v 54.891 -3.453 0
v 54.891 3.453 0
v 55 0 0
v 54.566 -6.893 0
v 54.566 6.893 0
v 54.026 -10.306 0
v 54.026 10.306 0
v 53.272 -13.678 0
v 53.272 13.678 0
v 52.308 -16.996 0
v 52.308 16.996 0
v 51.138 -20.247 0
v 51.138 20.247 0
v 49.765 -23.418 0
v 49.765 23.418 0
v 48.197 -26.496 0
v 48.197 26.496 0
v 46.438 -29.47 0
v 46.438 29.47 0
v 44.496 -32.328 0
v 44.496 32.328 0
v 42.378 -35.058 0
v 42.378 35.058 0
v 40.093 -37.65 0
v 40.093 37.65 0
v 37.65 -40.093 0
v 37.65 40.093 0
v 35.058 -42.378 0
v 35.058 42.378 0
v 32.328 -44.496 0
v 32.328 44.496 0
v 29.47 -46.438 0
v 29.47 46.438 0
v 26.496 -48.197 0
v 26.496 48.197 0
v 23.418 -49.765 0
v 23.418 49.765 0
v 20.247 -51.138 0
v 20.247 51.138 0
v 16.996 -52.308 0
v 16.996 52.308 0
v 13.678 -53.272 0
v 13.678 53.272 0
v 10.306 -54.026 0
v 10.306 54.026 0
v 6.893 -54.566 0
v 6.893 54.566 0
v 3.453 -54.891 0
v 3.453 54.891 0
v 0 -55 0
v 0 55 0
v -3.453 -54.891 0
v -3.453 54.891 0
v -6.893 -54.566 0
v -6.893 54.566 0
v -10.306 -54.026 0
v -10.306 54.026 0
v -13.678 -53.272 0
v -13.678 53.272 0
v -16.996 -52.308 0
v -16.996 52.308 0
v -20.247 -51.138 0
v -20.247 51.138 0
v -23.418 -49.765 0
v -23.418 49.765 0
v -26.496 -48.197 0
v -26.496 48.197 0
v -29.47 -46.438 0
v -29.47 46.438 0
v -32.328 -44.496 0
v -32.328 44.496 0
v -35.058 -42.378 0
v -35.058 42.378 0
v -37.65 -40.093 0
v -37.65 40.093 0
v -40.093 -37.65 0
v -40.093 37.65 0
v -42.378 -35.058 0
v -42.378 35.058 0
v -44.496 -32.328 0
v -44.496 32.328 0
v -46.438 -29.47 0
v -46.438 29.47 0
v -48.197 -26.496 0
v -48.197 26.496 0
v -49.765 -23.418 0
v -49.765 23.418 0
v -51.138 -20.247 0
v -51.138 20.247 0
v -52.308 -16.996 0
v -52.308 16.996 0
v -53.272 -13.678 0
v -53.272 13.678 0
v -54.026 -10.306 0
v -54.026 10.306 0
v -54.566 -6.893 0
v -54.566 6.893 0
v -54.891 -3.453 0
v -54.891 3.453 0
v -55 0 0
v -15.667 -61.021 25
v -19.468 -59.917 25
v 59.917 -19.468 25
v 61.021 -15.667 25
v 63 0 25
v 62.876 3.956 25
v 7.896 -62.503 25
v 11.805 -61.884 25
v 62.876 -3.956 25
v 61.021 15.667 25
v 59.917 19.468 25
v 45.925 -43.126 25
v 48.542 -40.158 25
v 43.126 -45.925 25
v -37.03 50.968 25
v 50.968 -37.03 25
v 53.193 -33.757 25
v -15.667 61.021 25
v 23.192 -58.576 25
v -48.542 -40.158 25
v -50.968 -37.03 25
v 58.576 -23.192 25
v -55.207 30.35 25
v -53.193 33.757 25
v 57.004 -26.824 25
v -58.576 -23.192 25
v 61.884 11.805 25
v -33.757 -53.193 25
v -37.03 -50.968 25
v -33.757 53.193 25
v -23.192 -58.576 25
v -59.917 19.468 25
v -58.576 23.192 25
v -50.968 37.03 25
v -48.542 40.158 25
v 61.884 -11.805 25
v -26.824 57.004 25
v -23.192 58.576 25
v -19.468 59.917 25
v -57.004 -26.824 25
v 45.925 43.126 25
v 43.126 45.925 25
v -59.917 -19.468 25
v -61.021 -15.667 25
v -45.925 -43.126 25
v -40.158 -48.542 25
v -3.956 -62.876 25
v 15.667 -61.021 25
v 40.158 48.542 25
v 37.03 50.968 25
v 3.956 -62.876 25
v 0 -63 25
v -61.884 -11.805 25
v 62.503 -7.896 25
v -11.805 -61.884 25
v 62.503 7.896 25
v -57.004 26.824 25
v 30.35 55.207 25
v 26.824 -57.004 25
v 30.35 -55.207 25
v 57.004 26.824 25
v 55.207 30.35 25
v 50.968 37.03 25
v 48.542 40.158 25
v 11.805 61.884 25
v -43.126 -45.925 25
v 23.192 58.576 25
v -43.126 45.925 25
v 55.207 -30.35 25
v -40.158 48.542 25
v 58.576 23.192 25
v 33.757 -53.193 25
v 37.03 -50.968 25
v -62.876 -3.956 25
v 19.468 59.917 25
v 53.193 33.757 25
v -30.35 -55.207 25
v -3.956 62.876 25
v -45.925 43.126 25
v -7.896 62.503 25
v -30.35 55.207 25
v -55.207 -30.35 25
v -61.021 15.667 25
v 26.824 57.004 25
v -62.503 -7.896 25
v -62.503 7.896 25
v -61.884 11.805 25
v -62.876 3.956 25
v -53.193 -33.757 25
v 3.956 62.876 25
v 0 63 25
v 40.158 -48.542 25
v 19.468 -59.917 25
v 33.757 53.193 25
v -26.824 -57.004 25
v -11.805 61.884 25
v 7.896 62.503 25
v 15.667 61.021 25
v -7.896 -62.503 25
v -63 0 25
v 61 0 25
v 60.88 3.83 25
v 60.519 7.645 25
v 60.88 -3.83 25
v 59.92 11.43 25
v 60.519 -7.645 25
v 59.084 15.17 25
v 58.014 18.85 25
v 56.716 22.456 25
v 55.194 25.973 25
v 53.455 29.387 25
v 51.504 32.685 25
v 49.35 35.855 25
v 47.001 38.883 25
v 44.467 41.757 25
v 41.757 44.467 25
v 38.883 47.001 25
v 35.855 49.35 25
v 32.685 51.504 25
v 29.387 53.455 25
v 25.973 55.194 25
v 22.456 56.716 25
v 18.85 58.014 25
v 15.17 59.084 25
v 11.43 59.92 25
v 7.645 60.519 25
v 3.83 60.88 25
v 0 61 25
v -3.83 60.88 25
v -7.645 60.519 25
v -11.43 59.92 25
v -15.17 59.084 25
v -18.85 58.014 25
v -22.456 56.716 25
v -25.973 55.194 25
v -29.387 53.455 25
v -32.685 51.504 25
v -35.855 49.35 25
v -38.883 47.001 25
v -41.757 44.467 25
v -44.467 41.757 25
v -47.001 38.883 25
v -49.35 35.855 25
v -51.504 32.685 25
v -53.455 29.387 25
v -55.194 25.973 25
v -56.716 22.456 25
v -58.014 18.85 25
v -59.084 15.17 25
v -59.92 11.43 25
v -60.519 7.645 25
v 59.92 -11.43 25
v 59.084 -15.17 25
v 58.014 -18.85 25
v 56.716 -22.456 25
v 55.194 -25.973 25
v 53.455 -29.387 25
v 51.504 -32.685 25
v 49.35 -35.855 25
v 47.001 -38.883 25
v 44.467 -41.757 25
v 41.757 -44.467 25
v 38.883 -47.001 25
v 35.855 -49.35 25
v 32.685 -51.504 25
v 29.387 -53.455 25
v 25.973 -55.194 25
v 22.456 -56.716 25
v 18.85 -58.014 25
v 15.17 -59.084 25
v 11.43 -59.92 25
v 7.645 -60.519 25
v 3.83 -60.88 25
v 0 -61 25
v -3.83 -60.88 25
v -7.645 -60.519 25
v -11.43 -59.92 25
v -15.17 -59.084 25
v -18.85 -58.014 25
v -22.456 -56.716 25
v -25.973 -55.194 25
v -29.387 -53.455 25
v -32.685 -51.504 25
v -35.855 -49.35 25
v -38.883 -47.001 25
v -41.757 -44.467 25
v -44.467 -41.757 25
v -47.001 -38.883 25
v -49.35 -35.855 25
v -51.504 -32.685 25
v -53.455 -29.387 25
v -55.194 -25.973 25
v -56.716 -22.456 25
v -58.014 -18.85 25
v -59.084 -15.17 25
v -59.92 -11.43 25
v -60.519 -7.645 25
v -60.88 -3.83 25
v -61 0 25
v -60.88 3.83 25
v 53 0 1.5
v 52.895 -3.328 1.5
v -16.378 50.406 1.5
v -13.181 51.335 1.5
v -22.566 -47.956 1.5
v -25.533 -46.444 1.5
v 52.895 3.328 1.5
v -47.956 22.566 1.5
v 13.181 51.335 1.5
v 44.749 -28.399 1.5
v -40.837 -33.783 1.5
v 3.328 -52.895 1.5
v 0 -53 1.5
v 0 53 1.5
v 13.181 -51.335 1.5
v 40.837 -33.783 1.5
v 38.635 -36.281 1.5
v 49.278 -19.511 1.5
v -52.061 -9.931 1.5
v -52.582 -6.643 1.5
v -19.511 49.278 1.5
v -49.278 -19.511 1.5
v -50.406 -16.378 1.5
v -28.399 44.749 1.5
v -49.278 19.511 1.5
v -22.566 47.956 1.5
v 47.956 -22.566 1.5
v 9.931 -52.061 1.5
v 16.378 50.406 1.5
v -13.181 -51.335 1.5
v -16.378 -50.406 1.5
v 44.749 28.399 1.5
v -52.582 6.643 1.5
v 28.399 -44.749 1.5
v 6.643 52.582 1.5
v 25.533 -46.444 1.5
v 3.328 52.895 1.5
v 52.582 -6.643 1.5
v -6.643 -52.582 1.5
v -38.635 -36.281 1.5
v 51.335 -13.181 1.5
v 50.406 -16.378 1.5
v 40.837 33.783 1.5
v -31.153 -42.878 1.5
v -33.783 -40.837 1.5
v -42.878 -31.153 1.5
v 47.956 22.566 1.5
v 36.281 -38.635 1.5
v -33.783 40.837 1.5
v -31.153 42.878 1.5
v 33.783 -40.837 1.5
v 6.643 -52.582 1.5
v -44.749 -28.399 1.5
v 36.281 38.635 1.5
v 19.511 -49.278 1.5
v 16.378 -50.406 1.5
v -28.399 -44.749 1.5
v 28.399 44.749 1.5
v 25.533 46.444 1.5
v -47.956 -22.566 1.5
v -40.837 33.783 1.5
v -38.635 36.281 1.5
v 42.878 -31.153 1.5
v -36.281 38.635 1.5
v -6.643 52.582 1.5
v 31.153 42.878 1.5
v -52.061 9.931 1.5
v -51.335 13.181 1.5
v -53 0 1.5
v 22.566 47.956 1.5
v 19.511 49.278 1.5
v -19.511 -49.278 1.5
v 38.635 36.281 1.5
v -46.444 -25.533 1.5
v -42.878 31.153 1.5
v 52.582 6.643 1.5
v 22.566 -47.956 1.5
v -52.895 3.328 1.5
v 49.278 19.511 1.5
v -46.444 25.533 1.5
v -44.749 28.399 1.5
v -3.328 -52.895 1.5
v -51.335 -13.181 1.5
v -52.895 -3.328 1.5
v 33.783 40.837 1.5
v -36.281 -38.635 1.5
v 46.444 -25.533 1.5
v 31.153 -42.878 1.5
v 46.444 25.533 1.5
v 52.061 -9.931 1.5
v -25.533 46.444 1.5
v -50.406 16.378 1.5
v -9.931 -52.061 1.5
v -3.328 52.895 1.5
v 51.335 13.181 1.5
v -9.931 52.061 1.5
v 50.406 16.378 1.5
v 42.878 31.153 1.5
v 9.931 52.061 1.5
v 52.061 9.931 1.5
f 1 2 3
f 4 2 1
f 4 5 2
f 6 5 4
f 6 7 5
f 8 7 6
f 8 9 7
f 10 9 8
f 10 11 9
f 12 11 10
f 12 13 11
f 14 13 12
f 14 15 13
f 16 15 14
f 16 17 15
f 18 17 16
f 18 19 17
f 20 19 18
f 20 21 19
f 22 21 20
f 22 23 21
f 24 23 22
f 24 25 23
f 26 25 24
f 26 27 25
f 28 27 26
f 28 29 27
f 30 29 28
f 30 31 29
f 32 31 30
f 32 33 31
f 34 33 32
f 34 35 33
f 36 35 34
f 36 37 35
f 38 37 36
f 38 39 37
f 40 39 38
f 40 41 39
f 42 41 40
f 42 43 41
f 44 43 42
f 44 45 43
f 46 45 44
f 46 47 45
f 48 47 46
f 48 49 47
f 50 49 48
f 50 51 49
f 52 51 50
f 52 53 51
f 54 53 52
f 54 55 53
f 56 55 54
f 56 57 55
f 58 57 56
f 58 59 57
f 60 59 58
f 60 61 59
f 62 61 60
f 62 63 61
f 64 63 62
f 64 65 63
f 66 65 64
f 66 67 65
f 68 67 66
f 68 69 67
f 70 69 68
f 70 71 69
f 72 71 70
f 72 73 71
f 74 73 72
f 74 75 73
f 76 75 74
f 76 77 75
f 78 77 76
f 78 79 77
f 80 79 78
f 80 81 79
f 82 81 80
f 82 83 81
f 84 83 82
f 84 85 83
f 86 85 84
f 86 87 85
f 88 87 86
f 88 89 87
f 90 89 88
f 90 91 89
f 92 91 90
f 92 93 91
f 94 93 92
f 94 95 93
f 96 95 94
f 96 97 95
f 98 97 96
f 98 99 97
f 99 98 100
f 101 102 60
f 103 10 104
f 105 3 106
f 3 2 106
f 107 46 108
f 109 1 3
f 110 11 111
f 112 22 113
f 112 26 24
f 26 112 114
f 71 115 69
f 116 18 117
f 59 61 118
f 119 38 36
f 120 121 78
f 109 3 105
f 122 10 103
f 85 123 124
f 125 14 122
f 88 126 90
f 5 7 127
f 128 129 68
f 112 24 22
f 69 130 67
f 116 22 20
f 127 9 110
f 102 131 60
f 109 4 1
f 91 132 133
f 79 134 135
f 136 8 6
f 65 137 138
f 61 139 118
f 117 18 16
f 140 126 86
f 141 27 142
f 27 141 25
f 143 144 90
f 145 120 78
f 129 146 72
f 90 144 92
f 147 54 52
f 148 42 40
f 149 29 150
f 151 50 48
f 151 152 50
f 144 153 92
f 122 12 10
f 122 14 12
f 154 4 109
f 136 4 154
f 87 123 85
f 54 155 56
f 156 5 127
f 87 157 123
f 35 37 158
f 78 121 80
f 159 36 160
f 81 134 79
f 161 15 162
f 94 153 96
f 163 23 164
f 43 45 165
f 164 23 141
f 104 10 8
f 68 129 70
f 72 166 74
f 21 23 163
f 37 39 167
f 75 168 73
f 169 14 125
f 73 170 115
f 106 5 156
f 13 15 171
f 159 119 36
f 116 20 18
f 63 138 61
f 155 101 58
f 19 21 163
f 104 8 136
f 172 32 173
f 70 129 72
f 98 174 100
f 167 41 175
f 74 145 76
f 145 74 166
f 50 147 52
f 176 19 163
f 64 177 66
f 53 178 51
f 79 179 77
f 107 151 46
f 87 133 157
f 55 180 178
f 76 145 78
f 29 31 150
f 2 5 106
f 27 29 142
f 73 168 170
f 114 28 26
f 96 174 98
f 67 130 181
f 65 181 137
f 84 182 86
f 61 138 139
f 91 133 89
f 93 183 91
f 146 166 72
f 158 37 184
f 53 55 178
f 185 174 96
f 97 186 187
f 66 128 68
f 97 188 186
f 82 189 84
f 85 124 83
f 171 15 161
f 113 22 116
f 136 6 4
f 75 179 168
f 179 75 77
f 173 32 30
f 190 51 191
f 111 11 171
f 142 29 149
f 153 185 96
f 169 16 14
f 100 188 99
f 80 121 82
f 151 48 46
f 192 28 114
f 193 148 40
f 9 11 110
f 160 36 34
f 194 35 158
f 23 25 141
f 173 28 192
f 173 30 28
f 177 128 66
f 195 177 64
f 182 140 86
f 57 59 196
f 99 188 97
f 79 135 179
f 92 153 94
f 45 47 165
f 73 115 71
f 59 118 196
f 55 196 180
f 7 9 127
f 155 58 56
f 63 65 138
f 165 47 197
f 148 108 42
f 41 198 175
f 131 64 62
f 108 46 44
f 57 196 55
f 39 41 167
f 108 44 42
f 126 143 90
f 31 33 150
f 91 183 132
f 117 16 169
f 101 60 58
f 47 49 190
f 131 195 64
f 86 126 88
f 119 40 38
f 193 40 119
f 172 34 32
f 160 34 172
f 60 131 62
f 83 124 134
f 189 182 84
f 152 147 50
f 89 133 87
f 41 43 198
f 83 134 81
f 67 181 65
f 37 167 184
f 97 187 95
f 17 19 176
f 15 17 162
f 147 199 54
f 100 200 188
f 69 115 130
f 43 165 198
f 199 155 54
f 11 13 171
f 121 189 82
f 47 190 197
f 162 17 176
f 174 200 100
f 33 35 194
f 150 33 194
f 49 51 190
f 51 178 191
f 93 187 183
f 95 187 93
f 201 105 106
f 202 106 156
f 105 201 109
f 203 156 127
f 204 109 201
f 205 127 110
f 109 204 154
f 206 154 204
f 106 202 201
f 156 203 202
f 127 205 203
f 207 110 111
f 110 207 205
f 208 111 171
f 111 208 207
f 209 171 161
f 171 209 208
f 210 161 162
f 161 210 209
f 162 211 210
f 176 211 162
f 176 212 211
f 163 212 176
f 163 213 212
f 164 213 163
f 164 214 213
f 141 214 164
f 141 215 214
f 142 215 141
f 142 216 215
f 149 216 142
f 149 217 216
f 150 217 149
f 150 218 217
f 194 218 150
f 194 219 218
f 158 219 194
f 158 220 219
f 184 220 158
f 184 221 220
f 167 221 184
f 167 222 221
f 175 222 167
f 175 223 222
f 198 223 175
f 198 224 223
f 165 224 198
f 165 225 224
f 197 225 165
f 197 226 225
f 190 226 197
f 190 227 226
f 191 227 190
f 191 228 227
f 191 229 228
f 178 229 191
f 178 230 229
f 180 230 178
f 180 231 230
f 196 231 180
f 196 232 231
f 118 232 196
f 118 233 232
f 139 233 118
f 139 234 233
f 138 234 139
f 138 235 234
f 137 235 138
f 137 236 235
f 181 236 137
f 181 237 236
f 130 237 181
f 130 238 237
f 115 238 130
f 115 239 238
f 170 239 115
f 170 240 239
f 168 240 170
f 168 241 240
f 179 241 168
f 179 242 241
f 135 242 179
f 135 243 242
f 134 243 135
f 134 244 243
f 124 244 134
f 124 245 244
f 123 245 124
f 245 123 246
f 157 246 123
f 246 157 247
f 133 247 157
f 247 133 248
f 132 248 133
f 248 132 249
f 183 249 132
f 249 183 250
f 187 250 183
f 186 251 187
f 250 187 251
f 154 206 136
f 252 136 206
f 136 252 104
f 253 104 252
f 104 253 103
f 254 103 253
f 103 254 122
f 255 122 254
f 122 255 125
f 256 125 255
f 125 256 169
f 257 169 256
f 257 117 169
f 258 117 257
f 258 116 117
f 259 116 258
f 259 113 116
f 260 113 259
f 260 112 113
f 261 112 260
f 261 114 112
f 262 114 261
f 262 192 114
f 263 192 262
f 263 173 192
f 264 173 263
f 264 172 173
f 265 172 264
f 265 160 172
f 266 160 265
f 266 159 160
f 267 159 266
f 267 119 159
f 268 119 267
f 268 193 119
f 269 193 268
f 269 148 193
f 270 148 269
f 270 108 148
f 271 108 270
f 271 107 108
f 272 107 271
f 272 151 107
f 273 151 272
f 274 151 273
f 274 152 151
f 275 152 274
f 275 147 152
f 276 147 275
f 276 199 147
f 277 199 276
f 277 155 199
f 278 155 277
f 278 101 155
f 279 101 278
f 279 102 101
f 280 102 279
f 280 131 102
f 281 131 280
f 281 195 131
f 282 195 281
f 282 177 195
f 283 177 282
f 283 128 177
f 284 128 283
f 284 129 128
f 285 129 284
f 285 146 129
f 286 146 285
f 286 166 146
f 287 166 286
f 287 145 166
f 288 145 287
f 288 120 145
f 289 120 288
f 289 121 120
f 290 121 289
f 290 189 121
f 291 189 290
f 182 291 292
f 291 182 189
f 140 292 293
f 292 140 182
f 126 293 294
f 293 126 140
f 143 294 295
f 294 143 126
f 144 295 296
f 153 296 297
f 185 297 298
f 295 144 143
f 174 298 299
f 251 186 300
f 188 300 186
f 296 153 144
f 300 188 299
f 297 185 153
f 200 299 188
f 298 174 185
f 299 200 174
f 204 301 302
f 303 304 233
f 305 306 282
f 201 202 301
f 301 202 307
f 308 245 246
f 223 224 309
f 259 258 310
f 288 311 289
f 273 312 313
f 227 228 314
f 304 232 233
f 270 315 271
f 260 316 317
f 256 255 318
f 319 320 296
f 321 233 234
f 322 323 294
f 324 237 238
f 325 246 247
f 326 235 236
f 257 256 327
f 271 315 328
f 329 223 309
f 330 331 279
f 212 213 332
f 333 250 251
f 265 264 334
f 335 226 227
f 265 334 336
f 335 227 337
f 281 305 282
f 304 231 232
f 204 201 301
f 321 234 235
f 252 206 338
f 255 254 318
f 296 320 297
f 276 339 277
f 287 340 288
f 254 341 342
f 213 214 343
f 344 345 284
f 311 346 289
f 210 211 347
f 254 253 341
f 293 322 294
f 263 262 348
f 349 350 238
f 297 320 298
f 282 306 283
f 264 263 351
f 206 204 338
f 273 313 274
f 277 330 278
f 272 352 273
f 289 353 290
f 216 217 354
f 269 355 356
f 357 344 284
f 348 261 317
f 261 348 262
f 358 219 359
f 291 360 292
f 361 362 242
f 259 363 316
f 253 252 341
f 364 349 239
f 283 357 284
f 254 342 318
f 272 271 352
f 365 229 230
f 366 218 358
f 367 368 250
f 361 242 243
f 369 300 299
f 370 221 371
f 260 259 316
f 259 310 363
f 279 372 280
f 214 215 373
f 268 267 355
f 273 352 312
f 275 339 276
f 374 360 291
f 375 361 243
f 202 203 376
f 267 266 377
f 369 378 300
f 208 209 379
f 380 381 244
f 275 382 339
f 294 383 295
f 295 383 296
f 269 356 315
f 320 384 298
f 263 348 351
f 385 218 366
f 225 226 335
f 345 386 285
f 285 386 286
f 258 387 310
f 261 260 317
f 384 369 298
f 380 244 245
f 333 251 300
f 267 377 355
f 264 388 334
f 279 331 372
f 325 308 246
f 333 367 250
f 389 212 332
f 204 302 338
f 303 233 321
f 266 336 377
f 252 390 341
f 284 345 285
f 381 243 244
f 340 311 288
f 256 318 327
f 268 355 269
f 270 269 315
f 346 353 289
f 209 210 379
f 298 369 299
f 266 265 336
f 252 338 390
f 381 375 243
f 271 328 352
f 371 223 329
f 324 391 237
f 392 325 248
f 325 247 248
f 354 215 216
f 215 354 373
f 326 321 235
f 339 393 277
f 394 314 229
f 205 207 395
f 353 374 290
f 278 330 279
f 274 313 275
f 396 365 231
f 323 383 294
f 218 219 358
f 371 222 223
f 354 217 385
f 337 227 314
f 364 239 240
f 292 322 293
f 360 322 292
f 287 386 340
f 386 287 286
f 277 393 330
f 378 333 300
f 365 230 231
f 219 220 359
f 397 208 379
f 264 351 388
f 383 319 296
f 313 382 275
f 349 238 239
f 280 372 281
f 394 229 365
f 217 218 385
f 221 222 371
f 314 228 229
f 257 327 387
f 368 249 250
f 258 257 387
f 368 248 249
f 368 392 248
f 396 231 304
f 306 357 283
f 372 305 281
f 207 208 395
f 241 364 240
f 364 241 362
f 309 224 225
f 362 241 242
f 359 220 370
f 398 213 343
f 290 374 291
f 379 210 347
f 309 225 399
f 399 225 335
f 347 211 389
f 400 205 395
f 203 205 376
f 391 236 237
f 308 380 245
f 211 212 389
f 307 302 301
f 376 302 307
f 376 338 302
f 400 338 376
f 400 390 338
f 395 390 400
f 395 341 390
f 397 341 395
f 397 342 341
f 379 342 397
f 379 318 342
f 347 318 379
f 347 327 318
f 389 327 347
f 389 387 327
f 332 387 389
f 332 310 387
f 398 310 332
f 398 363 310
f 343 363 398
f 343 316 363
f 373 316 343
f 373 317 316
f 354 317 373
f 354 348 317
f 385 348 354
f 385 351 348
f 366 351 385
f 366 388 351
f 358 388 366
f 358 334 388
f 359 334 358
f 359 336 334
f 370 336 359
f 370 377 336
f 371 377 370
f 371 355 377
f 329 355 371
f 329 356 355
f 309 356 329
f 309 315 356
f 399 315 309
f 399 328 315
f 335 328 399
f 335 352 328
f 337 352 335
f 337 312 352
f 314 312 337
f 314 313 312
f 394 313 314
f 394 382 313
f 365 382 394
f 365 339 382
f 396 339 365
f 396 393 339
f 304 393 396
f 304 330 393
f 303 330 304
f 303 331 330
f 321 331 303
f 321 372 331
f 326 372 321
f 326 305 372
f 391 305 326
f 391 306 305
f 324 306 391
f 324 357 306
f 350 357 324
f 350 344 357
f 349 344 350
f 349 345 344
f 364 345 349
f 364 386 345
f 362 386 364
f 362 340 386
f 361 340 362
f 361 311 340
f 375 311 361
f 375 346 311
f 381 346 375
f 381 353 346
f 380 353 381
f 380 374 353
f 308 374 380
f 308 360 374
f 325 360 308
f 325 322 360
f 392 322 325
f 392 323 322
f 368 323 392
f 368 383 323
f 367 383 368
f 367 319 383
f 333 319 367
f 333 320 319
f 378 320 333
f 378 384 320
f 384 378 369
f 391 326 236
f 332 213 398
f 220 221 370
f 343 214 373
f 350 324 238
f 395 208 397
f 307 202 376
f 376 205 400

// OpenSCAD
/*
 * Saucer for tomato cans
 *
 * Project URL
 * https://github.com/avolkov/openscad-designs/tomato-can-saucer
 *
 * Copyright 2021 Alex Volkov <alex@flamy.ca>
 * License: Attribution-ShareAlike 4.0 International (CC BY-SA)
 * https://creativecommons.org/licenses/by-sa/4.0/
 *
 * Version 1.0 2021-04-05 Initial publication
 */


$fn=100;
inner_radius = 53;
saucer_height = 25;
bottom_thick = 1.5;
top_offset = 8;
side_thick = 2;
difference(){
        union(){
            cylinder(h=bottom_thick, r1=inner_radius, r2=inner_radius);
            cylinder(
                h=saucer_height,
                r1=inner_radius+side_thick,
                r2=inner_radius+top_offset + side_thick);
        }
        translate([0,0,bottom_thick])
            cylinder(h=saucer_height - bottom_thick , r1=inner_radius, r2=inner_radius+top_offset);
    }
